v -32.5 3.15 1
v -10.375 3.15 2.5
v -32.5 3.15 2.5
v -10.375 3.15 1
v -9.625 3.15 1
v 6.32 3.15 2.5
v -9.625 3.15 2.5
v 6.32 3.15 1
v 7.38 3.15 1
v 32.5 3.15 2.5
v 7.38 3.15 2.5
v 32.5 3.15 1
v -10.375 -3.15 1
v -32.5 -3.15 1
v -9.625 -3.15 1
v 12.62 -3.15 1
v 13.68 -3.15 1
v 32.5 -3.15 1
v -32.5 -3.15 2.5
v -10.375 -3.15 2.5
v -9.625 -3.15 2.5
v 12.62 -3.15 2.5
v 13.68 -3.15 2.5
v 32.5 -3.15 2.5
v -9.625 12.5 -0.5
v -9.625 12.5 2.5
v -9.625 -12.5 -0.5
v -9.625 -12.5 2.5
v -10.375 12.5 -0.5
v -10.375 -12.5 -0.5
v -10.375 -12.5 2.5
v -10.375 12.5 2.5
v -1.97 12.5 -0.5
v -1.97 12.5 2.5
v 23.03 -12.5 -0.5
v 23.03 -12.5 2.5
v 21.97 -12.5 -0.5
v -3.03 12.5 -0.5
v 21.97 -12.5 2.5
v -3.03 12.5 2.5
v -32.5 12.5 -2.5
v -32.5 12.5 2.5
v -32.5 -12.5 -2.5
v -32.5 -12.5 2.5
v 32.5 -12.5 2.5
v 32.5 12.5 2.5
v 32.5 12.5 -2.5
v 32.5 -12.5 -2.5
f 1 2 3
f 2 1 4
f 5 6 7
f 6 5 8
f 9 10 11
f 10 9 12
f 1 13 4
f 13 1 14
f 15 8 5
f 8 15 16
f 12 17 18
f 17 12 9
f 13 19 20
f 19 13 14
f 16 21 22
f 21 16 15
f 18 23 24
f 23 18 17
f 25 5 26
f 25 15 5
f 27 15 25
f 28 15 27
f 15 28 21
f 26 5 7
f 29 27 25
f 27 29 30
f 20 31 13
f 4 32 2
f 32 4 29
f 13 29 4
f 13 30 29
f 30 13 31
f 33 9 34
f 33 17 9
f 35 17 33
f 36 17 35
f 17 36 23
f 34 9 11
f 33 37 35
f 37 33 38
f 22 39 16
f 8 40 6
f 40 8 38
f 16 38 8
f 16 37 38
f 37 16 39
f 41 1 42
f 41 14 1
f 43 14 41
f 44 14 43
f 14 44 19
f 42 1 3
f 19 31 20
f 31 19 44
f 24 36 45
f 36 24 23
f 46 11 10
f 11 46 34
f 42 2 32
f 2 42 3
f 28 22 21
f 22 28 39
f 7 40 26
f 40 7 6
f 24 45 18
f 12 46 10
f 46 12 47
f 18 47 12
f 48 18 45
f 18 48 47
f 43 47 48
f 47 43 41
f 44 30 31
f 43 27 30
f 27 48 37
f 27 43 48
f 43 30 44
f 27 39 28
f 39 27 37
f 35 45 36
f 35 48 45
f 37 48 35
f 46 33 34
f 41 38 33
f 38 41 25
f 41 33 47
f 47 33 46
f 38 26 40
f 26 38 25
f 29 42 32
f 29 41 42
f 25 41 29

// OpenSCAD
//Simple 1/4" Tape Splicing Block 
//openSCAD (.scad)
//Joe Plazak, 2015,  
//CC-Share-Alike

difference() {
    
//Initial Block    
cube([65,25,5],true, $fn=100);
    union(){

//1/4" Tape Track Slot: 1.5mm deep (from top); 6.30mm wide
        translate([0,0,2])
            cube([109,6.30,2],true, $fn=100);
    
//90 Degree Angle Razor Slot: .75mm wide
        translate([-10,0,2])
        rotate(a=[0,90,0])
            cube([5,30,.75],true, $fn=100);

//45 Degree Angle Razor Slot: .75mm wide
        translate([10,0,2])
        rotate(a=[0,90,45])
            cube([5,45,.75],true, $fn=100);
    }
}
